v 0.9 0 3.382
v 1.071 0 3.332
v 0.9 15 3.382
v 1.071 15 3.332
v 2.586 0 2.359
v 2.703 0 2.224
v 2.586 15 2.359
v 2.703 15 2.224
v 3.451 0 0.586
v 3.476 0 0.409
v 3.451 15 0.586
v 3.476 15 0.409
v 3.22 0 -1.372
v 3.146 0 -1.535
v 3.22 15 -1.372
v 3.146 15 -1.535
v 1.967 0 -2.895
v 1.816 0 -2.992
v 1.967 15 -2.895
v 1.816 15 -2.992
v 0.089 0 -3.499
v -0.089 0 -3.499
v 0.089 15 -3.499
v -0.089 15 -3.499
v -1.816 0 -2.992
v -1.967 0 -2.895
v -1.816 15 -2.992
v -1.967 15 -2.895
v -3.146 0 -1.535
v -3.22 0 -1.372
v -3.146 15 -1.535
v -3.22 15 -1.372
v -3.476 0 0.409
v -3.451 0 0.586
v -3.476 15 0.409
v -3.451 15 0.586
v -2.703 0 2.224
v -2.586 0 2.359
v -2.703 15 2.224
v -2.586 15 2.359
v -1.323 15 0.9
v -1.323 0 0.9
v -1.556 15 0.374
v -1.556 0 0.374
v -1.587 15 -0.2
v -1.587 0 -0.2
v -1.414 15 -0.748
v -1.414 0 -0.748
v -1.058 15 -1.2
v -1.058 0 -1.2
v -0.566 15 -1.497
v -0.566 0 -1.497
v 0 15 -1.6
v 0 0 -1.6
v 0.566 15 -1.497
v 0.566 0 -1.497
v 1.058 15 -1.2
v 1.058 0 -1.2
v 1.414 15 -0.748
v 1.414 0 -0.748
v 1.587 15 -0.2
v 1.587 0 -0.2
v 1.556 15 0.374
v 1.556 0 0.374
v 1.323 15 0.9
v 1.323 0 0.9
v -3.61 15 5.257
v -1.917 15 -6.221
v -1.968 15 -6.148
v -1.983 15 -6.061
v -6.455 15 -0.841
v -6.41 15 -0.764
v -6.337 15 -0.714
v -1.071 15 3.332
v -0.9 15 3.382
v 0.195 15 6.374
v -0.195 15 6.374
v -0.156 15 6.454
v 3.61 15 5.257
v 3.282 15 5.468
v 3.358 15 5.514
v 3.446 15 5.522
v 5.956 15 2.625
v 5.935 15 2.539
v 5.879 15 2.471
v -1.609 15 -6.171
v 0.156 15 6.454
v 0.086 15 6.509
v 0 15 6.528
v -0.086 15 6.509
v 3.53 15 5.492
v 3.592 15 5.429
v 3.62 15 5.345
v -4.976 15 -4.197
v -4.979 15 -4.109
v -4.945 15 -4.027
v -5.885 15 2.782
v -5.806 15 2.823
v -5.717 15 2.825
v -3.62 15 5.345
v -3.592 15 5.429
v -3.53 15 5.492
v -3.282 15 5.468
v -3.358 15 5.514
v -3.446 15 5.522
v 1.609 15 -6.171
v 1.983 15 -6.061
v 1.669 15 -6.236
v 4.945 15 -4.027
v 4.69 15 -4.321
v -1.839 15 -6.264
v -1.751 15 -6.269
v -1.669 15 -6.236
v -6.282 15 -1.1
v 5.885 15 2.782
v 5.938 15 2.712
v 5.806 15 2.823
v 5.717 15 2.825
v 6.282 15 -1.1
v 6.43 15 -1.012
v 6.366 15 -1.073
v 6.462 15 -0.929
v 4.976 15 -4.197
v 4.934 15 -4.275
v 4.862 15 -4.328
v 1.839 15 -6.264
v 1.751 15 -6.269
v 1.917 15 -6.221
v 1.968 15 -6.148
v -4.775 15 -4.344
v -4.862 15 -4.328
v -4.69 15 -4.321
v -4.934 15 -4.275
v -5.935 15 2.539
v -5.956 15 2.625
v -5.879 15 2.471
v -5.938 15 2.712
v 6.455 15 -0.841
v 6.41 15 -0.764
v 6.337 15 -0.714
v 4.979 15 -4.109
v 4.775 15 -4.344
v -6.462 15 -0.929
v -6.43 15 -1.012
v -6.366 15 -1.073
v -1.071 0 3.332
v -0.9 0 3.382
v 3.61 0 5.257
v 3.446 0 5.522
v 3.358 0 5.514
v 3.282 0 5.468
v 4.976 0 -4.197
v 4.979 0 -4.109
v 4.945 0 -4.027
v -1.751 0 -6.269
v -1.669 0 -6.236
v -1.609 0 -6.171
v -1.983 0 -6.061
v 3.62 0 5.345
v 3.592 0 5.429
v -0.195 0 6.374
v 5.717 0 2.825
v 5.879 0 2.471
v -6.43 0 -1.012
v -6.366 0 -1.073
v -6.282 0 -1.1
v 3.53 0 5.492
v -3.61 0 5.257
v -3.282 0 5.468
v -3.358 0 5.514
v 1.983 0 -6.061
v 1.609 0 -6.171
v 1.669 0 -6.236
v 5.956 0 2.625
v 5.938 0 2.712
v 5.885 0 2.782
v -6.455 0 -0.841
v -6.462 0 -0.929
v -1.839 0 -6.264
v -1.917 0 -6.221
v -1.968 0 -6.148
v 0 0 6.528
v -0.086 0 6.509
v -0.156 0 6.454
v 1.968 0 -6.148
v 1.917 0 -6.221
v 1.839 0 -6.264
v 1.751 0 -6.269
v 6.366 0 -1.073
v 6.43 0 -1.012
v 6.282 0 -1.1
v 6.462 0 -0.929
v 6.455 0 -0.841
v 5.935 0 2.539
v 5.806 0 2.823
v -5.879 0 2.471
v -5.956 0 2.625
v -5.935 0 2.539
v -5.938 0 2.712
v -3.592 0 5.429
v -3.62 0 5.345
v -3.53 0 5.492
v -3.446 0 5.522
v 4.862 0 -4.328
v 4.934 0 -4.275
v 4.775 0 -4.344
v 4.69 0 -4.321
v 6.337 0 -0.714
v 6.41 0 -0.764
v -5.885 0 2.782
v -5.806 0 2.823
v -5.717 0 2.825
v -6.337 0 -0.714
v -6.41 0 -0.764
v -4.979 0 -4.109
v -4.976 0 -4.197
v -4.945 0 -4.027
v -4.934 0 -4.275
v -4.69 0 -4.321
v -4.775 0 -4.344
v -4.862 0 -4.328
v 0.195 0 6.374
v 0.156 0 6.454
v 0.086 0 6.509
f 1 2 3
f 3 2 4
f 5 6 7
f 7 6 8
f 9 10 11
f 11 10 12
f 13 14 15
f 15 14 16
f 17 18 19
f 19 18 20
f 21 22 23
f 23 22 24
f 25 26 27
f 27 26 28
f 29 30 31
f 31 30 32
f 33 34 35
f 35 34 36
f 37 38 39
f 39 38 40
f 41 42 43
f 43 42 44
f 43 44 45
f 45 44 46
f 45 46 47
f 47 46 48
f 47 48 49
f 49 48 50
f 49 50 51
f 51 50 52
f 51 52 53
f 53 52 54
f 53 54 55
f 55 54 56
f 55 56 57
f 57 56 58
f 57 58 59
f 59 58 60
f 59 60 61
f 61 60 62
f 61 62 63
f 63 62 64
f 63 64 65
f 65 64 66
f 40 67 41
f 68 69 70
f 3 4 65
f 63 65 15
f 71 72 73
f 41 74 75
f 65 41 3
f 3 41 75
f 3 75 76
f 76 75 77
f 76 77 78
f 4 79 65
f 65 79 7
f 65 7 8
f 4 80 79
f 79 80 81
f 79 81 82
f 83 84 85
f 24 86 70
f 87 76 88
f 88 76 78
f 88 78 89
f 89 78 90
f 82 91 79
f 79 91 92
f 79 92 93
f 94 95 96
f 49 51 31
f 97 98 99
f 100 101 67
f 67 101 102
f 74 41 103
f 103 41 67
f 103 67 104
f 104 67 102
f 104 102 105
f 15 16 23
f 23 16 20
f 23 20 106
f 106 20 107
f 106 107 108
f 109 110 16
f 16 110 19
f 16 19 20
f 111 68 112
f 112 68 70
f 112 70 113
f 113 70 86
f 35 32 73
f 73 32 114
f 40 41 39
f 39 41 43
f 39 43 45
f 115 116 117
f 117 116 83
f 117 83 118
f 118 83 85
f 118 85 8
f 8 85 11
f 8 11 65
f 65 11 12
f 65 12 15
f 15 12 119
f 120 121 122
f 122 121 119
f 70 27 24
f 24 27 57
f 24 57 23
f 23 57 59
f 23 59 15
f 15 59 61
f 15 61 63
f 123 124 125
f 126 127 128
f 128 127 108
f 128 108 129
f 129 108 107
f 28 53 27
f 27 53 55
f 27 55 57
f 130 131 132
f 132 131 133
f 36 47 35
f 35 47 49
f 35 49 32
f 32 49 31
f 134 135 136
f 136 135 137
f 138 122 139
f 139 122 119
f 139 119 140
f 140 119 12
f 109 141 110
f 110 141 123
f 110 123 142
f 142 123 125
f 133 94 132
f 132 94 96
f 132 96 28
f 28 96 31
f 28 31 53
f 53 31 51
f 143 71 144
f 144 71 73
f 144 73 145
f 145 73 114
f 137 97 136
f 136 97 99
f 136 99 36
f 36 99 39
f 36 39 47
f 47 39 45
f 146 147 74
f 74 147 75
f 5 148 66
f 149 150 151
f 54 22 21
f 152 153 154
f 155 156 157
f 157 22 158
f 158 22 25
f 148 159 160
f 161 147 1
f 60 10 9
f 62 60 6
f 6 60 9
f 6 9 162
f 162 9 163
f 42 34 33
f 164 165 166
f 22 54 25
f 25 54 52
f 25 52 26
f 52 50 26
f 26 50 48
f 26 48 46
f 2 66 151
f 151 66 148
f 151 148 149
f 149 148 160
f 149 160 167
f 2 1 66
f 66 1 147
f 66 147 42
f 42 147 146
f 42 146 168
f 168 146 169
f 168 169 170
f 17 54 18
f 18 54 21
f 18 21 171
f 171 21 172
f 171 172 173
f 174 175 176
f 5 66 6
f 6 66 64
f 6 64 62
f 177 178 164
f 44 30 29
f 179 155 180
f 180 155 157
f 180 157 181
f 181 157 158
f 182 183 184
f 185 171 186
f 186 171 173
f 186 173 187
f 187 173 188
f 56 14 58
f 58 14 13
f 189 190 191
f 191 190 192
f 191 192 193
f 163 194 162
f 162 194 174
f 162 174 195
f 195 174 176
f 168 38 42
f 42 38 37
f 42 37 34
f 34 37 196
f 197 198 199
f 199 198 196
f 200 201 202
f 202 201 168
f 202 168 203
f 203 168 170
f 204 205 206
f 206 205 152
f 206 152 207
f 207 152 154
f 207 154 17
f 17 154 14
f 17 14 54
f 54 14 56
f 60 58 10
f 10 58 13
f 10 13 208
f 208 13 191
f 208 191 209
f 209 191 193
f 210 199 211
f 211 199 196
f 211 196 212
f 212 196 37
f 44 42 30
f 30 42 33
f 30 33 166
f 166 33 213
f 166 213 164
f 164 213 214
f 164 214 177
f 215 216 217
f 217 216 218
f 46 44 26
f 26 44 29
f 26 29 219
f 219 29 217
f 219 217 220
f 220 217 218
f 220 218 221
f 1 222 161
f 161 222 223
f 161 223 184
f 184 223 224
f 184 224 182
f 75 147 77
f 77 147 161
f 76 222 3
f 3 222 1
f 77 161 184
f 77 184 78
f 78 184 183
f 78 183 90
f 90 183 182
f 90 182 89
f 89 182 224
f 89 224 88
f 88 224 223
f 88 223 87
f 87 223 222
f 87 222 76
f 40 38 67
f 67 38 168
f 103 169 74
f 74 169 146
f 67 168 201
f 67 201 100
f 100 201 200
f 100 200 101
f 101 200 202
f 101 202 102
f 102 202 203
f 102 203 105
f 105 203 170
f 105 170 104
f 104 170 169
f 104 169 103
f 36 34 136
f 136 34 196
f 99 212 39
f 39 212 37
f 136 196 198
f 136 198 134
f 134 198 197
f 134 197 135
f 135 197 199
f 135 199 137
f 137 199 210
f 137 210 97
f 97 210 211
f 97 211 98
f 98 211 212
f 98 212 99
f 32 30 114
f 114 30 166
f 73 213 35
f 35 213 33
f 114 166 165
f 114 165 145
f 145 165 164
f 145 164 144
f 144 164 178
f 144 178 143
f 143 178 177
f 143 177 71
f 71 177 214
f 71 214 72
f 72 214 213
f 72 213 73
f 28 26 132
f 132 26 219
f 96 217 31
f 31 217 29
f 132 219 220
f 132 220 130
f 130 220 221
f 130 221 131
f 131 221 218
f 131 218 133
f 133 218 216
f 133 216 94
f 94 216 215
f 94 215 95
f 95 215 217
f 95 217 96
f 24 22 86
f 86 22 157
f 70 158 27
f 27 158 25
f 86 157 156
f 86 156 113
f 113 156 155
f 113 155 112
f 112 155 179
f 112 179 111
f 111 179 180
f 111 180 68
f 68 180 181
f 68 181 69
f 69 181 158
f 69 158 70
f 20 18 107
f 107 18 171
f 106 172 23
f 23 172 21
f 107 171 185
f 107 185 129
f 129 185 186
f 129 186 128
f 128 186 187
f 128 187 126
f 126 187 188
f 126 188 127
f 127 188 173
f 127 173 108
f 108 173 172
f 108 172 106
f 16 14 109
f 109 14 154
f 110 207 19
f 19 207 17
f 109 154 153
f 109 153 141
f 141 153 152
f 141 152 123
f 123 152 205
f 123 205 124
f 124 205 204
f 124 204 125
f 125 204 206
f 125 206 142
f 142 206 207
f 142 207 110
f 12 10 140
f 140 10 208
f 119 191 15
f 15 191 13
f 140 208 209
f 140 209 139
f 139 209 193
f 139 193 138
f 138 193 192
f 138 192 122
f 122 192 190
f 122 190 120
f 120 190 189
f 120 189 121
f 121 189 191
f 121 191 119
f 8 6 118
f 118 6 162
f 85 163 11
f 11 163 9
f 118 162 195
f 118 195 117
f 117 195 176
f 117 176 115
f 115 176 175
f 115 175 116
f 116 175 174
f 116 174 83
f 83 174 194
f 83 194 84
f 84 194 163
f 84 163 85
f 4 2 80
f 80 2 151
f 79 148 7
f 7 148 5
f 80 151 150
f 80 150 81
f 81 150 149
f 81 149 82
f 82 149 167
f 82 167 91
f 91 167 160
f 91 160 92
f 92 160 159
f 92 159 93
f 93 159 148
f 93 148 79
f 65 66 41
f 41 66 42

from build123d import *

# Parameters (mm, degrees)
ESBO_O1_W                = 1.9
ESBO_O1_H                = 15
RESSALTO_EXTRUS_O1_DEPTH = 15
PADR_OCIRCULAR1_COUNT    = 11
RESSALTO_EXTRUS_O2_DEPTH = 15


with BuildPart() as part:
    # Esboço1 → Revolução1 (revolve)
    with BuildSketch(Plane.XY):
        with Locations((2.55, 7.5)):
            Rectangle(ESBO_O1_W, ESBO_O1_H)
    revolve(axis=Axis((0, 0, 0), (0, 1, 0)))

    # Esboço3 → Ressalto-extrusão1 (add)
    with BuildSketch(Plane(origin=(0, 0, 0), x_dir=(-1, 0, 0), z_dir=(0, -1, 0))):
        with BuildLine():
            Line((-0.194663871, -6.374258983), (-0.9, -3.382306905))
            ThreePointArc((-0.9, -3.382306905), (0, -3.5), (0.9, -3.382306905))
            Line((0.9, -3.382306905), (0.194663871, -6.374258983))
            ThreePointArc((0.194663871, -6.374258983), (0, -6.528368053), (-0.194663871, -6.374258983))
        make_face()
    extrude(amount=-RESSALTO_EXTRUS_O1_DEPTH)

    # PadrãoCircular1: part ×11 about axis
    padr_ocircular1_axis = Axis((0, 0, 0), (0, 1, 0))


with BuildPart() as part_1:
    add(part.part)
    for i in range(1, PADR_OCIRCULAR1_COUNT):
        add(part.part.rotate(padr_ocircular1_axis, i * 360 / PADR_OCIRCULAR1_COUNT))

    # Esboço4 → Ressalto-extrusão2 (add)
    with BuildSketch(Plane.XZ):
        with BuildLine():
            Line((1.322875656, 0.9), (-1.322875656, 0.9))
            ThreePointArc((-1.322875656, 0.9), (0, 1.6), (1.322875656, 0.9))
        make_face()
    extrude(amount=-RESSALTO_EXTRUS_O2_DEPTH)


solid = part_1.part
